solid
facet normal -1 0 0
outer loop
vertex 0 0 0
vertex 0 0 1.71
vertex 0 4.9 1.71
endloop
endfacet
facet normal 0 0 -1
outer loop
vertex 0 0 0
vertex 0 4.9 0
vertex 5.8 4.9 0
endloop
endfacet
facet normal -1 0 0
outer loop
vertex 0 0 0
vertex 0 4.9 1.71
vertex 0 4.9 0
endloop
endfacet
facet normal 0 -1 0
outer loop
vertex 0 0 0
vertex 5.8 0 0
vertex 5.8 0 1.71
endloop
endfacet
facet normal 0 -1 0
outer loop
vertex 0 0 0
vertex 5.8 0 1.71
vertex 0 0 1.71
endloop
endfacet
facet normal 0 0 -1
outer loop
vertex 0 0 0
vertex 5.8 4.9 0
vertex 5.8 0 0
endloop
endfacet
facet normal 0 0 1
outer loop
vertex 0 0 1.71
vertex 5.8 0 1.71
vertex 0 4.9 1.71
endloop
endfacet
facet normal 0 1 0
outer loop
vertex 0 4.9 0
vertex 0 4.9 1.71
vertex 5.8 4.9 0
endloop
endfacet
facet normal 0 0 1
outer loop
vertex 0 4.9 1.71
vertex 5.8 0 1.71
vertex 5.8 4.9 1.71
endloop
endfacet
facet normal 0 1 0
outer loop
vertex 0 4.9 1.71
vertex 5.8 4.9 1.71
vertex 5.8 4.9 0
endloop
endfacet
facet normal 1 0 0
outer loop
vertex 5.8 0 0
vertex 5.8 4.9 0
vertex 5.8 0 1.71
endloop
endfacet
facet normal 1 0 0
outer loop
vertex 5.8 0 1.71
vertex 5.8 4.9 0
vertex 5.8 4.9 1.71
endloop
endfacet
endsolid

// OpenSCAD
/* Warning, this is a very basic generator with a lot of approximation 
input data : [LGA, 8FW, 5.8x4.9x1.71mm, 22, , B, C04-00660B]
generated by com.zoubworld.electronics.cad.model3d.Basic
Date : Sun Feb 15 10:50:49 CET 2026
*/

//body
color("black")
translate([0,0,0])
cube([5.8,4.9,1.71], center=false);
